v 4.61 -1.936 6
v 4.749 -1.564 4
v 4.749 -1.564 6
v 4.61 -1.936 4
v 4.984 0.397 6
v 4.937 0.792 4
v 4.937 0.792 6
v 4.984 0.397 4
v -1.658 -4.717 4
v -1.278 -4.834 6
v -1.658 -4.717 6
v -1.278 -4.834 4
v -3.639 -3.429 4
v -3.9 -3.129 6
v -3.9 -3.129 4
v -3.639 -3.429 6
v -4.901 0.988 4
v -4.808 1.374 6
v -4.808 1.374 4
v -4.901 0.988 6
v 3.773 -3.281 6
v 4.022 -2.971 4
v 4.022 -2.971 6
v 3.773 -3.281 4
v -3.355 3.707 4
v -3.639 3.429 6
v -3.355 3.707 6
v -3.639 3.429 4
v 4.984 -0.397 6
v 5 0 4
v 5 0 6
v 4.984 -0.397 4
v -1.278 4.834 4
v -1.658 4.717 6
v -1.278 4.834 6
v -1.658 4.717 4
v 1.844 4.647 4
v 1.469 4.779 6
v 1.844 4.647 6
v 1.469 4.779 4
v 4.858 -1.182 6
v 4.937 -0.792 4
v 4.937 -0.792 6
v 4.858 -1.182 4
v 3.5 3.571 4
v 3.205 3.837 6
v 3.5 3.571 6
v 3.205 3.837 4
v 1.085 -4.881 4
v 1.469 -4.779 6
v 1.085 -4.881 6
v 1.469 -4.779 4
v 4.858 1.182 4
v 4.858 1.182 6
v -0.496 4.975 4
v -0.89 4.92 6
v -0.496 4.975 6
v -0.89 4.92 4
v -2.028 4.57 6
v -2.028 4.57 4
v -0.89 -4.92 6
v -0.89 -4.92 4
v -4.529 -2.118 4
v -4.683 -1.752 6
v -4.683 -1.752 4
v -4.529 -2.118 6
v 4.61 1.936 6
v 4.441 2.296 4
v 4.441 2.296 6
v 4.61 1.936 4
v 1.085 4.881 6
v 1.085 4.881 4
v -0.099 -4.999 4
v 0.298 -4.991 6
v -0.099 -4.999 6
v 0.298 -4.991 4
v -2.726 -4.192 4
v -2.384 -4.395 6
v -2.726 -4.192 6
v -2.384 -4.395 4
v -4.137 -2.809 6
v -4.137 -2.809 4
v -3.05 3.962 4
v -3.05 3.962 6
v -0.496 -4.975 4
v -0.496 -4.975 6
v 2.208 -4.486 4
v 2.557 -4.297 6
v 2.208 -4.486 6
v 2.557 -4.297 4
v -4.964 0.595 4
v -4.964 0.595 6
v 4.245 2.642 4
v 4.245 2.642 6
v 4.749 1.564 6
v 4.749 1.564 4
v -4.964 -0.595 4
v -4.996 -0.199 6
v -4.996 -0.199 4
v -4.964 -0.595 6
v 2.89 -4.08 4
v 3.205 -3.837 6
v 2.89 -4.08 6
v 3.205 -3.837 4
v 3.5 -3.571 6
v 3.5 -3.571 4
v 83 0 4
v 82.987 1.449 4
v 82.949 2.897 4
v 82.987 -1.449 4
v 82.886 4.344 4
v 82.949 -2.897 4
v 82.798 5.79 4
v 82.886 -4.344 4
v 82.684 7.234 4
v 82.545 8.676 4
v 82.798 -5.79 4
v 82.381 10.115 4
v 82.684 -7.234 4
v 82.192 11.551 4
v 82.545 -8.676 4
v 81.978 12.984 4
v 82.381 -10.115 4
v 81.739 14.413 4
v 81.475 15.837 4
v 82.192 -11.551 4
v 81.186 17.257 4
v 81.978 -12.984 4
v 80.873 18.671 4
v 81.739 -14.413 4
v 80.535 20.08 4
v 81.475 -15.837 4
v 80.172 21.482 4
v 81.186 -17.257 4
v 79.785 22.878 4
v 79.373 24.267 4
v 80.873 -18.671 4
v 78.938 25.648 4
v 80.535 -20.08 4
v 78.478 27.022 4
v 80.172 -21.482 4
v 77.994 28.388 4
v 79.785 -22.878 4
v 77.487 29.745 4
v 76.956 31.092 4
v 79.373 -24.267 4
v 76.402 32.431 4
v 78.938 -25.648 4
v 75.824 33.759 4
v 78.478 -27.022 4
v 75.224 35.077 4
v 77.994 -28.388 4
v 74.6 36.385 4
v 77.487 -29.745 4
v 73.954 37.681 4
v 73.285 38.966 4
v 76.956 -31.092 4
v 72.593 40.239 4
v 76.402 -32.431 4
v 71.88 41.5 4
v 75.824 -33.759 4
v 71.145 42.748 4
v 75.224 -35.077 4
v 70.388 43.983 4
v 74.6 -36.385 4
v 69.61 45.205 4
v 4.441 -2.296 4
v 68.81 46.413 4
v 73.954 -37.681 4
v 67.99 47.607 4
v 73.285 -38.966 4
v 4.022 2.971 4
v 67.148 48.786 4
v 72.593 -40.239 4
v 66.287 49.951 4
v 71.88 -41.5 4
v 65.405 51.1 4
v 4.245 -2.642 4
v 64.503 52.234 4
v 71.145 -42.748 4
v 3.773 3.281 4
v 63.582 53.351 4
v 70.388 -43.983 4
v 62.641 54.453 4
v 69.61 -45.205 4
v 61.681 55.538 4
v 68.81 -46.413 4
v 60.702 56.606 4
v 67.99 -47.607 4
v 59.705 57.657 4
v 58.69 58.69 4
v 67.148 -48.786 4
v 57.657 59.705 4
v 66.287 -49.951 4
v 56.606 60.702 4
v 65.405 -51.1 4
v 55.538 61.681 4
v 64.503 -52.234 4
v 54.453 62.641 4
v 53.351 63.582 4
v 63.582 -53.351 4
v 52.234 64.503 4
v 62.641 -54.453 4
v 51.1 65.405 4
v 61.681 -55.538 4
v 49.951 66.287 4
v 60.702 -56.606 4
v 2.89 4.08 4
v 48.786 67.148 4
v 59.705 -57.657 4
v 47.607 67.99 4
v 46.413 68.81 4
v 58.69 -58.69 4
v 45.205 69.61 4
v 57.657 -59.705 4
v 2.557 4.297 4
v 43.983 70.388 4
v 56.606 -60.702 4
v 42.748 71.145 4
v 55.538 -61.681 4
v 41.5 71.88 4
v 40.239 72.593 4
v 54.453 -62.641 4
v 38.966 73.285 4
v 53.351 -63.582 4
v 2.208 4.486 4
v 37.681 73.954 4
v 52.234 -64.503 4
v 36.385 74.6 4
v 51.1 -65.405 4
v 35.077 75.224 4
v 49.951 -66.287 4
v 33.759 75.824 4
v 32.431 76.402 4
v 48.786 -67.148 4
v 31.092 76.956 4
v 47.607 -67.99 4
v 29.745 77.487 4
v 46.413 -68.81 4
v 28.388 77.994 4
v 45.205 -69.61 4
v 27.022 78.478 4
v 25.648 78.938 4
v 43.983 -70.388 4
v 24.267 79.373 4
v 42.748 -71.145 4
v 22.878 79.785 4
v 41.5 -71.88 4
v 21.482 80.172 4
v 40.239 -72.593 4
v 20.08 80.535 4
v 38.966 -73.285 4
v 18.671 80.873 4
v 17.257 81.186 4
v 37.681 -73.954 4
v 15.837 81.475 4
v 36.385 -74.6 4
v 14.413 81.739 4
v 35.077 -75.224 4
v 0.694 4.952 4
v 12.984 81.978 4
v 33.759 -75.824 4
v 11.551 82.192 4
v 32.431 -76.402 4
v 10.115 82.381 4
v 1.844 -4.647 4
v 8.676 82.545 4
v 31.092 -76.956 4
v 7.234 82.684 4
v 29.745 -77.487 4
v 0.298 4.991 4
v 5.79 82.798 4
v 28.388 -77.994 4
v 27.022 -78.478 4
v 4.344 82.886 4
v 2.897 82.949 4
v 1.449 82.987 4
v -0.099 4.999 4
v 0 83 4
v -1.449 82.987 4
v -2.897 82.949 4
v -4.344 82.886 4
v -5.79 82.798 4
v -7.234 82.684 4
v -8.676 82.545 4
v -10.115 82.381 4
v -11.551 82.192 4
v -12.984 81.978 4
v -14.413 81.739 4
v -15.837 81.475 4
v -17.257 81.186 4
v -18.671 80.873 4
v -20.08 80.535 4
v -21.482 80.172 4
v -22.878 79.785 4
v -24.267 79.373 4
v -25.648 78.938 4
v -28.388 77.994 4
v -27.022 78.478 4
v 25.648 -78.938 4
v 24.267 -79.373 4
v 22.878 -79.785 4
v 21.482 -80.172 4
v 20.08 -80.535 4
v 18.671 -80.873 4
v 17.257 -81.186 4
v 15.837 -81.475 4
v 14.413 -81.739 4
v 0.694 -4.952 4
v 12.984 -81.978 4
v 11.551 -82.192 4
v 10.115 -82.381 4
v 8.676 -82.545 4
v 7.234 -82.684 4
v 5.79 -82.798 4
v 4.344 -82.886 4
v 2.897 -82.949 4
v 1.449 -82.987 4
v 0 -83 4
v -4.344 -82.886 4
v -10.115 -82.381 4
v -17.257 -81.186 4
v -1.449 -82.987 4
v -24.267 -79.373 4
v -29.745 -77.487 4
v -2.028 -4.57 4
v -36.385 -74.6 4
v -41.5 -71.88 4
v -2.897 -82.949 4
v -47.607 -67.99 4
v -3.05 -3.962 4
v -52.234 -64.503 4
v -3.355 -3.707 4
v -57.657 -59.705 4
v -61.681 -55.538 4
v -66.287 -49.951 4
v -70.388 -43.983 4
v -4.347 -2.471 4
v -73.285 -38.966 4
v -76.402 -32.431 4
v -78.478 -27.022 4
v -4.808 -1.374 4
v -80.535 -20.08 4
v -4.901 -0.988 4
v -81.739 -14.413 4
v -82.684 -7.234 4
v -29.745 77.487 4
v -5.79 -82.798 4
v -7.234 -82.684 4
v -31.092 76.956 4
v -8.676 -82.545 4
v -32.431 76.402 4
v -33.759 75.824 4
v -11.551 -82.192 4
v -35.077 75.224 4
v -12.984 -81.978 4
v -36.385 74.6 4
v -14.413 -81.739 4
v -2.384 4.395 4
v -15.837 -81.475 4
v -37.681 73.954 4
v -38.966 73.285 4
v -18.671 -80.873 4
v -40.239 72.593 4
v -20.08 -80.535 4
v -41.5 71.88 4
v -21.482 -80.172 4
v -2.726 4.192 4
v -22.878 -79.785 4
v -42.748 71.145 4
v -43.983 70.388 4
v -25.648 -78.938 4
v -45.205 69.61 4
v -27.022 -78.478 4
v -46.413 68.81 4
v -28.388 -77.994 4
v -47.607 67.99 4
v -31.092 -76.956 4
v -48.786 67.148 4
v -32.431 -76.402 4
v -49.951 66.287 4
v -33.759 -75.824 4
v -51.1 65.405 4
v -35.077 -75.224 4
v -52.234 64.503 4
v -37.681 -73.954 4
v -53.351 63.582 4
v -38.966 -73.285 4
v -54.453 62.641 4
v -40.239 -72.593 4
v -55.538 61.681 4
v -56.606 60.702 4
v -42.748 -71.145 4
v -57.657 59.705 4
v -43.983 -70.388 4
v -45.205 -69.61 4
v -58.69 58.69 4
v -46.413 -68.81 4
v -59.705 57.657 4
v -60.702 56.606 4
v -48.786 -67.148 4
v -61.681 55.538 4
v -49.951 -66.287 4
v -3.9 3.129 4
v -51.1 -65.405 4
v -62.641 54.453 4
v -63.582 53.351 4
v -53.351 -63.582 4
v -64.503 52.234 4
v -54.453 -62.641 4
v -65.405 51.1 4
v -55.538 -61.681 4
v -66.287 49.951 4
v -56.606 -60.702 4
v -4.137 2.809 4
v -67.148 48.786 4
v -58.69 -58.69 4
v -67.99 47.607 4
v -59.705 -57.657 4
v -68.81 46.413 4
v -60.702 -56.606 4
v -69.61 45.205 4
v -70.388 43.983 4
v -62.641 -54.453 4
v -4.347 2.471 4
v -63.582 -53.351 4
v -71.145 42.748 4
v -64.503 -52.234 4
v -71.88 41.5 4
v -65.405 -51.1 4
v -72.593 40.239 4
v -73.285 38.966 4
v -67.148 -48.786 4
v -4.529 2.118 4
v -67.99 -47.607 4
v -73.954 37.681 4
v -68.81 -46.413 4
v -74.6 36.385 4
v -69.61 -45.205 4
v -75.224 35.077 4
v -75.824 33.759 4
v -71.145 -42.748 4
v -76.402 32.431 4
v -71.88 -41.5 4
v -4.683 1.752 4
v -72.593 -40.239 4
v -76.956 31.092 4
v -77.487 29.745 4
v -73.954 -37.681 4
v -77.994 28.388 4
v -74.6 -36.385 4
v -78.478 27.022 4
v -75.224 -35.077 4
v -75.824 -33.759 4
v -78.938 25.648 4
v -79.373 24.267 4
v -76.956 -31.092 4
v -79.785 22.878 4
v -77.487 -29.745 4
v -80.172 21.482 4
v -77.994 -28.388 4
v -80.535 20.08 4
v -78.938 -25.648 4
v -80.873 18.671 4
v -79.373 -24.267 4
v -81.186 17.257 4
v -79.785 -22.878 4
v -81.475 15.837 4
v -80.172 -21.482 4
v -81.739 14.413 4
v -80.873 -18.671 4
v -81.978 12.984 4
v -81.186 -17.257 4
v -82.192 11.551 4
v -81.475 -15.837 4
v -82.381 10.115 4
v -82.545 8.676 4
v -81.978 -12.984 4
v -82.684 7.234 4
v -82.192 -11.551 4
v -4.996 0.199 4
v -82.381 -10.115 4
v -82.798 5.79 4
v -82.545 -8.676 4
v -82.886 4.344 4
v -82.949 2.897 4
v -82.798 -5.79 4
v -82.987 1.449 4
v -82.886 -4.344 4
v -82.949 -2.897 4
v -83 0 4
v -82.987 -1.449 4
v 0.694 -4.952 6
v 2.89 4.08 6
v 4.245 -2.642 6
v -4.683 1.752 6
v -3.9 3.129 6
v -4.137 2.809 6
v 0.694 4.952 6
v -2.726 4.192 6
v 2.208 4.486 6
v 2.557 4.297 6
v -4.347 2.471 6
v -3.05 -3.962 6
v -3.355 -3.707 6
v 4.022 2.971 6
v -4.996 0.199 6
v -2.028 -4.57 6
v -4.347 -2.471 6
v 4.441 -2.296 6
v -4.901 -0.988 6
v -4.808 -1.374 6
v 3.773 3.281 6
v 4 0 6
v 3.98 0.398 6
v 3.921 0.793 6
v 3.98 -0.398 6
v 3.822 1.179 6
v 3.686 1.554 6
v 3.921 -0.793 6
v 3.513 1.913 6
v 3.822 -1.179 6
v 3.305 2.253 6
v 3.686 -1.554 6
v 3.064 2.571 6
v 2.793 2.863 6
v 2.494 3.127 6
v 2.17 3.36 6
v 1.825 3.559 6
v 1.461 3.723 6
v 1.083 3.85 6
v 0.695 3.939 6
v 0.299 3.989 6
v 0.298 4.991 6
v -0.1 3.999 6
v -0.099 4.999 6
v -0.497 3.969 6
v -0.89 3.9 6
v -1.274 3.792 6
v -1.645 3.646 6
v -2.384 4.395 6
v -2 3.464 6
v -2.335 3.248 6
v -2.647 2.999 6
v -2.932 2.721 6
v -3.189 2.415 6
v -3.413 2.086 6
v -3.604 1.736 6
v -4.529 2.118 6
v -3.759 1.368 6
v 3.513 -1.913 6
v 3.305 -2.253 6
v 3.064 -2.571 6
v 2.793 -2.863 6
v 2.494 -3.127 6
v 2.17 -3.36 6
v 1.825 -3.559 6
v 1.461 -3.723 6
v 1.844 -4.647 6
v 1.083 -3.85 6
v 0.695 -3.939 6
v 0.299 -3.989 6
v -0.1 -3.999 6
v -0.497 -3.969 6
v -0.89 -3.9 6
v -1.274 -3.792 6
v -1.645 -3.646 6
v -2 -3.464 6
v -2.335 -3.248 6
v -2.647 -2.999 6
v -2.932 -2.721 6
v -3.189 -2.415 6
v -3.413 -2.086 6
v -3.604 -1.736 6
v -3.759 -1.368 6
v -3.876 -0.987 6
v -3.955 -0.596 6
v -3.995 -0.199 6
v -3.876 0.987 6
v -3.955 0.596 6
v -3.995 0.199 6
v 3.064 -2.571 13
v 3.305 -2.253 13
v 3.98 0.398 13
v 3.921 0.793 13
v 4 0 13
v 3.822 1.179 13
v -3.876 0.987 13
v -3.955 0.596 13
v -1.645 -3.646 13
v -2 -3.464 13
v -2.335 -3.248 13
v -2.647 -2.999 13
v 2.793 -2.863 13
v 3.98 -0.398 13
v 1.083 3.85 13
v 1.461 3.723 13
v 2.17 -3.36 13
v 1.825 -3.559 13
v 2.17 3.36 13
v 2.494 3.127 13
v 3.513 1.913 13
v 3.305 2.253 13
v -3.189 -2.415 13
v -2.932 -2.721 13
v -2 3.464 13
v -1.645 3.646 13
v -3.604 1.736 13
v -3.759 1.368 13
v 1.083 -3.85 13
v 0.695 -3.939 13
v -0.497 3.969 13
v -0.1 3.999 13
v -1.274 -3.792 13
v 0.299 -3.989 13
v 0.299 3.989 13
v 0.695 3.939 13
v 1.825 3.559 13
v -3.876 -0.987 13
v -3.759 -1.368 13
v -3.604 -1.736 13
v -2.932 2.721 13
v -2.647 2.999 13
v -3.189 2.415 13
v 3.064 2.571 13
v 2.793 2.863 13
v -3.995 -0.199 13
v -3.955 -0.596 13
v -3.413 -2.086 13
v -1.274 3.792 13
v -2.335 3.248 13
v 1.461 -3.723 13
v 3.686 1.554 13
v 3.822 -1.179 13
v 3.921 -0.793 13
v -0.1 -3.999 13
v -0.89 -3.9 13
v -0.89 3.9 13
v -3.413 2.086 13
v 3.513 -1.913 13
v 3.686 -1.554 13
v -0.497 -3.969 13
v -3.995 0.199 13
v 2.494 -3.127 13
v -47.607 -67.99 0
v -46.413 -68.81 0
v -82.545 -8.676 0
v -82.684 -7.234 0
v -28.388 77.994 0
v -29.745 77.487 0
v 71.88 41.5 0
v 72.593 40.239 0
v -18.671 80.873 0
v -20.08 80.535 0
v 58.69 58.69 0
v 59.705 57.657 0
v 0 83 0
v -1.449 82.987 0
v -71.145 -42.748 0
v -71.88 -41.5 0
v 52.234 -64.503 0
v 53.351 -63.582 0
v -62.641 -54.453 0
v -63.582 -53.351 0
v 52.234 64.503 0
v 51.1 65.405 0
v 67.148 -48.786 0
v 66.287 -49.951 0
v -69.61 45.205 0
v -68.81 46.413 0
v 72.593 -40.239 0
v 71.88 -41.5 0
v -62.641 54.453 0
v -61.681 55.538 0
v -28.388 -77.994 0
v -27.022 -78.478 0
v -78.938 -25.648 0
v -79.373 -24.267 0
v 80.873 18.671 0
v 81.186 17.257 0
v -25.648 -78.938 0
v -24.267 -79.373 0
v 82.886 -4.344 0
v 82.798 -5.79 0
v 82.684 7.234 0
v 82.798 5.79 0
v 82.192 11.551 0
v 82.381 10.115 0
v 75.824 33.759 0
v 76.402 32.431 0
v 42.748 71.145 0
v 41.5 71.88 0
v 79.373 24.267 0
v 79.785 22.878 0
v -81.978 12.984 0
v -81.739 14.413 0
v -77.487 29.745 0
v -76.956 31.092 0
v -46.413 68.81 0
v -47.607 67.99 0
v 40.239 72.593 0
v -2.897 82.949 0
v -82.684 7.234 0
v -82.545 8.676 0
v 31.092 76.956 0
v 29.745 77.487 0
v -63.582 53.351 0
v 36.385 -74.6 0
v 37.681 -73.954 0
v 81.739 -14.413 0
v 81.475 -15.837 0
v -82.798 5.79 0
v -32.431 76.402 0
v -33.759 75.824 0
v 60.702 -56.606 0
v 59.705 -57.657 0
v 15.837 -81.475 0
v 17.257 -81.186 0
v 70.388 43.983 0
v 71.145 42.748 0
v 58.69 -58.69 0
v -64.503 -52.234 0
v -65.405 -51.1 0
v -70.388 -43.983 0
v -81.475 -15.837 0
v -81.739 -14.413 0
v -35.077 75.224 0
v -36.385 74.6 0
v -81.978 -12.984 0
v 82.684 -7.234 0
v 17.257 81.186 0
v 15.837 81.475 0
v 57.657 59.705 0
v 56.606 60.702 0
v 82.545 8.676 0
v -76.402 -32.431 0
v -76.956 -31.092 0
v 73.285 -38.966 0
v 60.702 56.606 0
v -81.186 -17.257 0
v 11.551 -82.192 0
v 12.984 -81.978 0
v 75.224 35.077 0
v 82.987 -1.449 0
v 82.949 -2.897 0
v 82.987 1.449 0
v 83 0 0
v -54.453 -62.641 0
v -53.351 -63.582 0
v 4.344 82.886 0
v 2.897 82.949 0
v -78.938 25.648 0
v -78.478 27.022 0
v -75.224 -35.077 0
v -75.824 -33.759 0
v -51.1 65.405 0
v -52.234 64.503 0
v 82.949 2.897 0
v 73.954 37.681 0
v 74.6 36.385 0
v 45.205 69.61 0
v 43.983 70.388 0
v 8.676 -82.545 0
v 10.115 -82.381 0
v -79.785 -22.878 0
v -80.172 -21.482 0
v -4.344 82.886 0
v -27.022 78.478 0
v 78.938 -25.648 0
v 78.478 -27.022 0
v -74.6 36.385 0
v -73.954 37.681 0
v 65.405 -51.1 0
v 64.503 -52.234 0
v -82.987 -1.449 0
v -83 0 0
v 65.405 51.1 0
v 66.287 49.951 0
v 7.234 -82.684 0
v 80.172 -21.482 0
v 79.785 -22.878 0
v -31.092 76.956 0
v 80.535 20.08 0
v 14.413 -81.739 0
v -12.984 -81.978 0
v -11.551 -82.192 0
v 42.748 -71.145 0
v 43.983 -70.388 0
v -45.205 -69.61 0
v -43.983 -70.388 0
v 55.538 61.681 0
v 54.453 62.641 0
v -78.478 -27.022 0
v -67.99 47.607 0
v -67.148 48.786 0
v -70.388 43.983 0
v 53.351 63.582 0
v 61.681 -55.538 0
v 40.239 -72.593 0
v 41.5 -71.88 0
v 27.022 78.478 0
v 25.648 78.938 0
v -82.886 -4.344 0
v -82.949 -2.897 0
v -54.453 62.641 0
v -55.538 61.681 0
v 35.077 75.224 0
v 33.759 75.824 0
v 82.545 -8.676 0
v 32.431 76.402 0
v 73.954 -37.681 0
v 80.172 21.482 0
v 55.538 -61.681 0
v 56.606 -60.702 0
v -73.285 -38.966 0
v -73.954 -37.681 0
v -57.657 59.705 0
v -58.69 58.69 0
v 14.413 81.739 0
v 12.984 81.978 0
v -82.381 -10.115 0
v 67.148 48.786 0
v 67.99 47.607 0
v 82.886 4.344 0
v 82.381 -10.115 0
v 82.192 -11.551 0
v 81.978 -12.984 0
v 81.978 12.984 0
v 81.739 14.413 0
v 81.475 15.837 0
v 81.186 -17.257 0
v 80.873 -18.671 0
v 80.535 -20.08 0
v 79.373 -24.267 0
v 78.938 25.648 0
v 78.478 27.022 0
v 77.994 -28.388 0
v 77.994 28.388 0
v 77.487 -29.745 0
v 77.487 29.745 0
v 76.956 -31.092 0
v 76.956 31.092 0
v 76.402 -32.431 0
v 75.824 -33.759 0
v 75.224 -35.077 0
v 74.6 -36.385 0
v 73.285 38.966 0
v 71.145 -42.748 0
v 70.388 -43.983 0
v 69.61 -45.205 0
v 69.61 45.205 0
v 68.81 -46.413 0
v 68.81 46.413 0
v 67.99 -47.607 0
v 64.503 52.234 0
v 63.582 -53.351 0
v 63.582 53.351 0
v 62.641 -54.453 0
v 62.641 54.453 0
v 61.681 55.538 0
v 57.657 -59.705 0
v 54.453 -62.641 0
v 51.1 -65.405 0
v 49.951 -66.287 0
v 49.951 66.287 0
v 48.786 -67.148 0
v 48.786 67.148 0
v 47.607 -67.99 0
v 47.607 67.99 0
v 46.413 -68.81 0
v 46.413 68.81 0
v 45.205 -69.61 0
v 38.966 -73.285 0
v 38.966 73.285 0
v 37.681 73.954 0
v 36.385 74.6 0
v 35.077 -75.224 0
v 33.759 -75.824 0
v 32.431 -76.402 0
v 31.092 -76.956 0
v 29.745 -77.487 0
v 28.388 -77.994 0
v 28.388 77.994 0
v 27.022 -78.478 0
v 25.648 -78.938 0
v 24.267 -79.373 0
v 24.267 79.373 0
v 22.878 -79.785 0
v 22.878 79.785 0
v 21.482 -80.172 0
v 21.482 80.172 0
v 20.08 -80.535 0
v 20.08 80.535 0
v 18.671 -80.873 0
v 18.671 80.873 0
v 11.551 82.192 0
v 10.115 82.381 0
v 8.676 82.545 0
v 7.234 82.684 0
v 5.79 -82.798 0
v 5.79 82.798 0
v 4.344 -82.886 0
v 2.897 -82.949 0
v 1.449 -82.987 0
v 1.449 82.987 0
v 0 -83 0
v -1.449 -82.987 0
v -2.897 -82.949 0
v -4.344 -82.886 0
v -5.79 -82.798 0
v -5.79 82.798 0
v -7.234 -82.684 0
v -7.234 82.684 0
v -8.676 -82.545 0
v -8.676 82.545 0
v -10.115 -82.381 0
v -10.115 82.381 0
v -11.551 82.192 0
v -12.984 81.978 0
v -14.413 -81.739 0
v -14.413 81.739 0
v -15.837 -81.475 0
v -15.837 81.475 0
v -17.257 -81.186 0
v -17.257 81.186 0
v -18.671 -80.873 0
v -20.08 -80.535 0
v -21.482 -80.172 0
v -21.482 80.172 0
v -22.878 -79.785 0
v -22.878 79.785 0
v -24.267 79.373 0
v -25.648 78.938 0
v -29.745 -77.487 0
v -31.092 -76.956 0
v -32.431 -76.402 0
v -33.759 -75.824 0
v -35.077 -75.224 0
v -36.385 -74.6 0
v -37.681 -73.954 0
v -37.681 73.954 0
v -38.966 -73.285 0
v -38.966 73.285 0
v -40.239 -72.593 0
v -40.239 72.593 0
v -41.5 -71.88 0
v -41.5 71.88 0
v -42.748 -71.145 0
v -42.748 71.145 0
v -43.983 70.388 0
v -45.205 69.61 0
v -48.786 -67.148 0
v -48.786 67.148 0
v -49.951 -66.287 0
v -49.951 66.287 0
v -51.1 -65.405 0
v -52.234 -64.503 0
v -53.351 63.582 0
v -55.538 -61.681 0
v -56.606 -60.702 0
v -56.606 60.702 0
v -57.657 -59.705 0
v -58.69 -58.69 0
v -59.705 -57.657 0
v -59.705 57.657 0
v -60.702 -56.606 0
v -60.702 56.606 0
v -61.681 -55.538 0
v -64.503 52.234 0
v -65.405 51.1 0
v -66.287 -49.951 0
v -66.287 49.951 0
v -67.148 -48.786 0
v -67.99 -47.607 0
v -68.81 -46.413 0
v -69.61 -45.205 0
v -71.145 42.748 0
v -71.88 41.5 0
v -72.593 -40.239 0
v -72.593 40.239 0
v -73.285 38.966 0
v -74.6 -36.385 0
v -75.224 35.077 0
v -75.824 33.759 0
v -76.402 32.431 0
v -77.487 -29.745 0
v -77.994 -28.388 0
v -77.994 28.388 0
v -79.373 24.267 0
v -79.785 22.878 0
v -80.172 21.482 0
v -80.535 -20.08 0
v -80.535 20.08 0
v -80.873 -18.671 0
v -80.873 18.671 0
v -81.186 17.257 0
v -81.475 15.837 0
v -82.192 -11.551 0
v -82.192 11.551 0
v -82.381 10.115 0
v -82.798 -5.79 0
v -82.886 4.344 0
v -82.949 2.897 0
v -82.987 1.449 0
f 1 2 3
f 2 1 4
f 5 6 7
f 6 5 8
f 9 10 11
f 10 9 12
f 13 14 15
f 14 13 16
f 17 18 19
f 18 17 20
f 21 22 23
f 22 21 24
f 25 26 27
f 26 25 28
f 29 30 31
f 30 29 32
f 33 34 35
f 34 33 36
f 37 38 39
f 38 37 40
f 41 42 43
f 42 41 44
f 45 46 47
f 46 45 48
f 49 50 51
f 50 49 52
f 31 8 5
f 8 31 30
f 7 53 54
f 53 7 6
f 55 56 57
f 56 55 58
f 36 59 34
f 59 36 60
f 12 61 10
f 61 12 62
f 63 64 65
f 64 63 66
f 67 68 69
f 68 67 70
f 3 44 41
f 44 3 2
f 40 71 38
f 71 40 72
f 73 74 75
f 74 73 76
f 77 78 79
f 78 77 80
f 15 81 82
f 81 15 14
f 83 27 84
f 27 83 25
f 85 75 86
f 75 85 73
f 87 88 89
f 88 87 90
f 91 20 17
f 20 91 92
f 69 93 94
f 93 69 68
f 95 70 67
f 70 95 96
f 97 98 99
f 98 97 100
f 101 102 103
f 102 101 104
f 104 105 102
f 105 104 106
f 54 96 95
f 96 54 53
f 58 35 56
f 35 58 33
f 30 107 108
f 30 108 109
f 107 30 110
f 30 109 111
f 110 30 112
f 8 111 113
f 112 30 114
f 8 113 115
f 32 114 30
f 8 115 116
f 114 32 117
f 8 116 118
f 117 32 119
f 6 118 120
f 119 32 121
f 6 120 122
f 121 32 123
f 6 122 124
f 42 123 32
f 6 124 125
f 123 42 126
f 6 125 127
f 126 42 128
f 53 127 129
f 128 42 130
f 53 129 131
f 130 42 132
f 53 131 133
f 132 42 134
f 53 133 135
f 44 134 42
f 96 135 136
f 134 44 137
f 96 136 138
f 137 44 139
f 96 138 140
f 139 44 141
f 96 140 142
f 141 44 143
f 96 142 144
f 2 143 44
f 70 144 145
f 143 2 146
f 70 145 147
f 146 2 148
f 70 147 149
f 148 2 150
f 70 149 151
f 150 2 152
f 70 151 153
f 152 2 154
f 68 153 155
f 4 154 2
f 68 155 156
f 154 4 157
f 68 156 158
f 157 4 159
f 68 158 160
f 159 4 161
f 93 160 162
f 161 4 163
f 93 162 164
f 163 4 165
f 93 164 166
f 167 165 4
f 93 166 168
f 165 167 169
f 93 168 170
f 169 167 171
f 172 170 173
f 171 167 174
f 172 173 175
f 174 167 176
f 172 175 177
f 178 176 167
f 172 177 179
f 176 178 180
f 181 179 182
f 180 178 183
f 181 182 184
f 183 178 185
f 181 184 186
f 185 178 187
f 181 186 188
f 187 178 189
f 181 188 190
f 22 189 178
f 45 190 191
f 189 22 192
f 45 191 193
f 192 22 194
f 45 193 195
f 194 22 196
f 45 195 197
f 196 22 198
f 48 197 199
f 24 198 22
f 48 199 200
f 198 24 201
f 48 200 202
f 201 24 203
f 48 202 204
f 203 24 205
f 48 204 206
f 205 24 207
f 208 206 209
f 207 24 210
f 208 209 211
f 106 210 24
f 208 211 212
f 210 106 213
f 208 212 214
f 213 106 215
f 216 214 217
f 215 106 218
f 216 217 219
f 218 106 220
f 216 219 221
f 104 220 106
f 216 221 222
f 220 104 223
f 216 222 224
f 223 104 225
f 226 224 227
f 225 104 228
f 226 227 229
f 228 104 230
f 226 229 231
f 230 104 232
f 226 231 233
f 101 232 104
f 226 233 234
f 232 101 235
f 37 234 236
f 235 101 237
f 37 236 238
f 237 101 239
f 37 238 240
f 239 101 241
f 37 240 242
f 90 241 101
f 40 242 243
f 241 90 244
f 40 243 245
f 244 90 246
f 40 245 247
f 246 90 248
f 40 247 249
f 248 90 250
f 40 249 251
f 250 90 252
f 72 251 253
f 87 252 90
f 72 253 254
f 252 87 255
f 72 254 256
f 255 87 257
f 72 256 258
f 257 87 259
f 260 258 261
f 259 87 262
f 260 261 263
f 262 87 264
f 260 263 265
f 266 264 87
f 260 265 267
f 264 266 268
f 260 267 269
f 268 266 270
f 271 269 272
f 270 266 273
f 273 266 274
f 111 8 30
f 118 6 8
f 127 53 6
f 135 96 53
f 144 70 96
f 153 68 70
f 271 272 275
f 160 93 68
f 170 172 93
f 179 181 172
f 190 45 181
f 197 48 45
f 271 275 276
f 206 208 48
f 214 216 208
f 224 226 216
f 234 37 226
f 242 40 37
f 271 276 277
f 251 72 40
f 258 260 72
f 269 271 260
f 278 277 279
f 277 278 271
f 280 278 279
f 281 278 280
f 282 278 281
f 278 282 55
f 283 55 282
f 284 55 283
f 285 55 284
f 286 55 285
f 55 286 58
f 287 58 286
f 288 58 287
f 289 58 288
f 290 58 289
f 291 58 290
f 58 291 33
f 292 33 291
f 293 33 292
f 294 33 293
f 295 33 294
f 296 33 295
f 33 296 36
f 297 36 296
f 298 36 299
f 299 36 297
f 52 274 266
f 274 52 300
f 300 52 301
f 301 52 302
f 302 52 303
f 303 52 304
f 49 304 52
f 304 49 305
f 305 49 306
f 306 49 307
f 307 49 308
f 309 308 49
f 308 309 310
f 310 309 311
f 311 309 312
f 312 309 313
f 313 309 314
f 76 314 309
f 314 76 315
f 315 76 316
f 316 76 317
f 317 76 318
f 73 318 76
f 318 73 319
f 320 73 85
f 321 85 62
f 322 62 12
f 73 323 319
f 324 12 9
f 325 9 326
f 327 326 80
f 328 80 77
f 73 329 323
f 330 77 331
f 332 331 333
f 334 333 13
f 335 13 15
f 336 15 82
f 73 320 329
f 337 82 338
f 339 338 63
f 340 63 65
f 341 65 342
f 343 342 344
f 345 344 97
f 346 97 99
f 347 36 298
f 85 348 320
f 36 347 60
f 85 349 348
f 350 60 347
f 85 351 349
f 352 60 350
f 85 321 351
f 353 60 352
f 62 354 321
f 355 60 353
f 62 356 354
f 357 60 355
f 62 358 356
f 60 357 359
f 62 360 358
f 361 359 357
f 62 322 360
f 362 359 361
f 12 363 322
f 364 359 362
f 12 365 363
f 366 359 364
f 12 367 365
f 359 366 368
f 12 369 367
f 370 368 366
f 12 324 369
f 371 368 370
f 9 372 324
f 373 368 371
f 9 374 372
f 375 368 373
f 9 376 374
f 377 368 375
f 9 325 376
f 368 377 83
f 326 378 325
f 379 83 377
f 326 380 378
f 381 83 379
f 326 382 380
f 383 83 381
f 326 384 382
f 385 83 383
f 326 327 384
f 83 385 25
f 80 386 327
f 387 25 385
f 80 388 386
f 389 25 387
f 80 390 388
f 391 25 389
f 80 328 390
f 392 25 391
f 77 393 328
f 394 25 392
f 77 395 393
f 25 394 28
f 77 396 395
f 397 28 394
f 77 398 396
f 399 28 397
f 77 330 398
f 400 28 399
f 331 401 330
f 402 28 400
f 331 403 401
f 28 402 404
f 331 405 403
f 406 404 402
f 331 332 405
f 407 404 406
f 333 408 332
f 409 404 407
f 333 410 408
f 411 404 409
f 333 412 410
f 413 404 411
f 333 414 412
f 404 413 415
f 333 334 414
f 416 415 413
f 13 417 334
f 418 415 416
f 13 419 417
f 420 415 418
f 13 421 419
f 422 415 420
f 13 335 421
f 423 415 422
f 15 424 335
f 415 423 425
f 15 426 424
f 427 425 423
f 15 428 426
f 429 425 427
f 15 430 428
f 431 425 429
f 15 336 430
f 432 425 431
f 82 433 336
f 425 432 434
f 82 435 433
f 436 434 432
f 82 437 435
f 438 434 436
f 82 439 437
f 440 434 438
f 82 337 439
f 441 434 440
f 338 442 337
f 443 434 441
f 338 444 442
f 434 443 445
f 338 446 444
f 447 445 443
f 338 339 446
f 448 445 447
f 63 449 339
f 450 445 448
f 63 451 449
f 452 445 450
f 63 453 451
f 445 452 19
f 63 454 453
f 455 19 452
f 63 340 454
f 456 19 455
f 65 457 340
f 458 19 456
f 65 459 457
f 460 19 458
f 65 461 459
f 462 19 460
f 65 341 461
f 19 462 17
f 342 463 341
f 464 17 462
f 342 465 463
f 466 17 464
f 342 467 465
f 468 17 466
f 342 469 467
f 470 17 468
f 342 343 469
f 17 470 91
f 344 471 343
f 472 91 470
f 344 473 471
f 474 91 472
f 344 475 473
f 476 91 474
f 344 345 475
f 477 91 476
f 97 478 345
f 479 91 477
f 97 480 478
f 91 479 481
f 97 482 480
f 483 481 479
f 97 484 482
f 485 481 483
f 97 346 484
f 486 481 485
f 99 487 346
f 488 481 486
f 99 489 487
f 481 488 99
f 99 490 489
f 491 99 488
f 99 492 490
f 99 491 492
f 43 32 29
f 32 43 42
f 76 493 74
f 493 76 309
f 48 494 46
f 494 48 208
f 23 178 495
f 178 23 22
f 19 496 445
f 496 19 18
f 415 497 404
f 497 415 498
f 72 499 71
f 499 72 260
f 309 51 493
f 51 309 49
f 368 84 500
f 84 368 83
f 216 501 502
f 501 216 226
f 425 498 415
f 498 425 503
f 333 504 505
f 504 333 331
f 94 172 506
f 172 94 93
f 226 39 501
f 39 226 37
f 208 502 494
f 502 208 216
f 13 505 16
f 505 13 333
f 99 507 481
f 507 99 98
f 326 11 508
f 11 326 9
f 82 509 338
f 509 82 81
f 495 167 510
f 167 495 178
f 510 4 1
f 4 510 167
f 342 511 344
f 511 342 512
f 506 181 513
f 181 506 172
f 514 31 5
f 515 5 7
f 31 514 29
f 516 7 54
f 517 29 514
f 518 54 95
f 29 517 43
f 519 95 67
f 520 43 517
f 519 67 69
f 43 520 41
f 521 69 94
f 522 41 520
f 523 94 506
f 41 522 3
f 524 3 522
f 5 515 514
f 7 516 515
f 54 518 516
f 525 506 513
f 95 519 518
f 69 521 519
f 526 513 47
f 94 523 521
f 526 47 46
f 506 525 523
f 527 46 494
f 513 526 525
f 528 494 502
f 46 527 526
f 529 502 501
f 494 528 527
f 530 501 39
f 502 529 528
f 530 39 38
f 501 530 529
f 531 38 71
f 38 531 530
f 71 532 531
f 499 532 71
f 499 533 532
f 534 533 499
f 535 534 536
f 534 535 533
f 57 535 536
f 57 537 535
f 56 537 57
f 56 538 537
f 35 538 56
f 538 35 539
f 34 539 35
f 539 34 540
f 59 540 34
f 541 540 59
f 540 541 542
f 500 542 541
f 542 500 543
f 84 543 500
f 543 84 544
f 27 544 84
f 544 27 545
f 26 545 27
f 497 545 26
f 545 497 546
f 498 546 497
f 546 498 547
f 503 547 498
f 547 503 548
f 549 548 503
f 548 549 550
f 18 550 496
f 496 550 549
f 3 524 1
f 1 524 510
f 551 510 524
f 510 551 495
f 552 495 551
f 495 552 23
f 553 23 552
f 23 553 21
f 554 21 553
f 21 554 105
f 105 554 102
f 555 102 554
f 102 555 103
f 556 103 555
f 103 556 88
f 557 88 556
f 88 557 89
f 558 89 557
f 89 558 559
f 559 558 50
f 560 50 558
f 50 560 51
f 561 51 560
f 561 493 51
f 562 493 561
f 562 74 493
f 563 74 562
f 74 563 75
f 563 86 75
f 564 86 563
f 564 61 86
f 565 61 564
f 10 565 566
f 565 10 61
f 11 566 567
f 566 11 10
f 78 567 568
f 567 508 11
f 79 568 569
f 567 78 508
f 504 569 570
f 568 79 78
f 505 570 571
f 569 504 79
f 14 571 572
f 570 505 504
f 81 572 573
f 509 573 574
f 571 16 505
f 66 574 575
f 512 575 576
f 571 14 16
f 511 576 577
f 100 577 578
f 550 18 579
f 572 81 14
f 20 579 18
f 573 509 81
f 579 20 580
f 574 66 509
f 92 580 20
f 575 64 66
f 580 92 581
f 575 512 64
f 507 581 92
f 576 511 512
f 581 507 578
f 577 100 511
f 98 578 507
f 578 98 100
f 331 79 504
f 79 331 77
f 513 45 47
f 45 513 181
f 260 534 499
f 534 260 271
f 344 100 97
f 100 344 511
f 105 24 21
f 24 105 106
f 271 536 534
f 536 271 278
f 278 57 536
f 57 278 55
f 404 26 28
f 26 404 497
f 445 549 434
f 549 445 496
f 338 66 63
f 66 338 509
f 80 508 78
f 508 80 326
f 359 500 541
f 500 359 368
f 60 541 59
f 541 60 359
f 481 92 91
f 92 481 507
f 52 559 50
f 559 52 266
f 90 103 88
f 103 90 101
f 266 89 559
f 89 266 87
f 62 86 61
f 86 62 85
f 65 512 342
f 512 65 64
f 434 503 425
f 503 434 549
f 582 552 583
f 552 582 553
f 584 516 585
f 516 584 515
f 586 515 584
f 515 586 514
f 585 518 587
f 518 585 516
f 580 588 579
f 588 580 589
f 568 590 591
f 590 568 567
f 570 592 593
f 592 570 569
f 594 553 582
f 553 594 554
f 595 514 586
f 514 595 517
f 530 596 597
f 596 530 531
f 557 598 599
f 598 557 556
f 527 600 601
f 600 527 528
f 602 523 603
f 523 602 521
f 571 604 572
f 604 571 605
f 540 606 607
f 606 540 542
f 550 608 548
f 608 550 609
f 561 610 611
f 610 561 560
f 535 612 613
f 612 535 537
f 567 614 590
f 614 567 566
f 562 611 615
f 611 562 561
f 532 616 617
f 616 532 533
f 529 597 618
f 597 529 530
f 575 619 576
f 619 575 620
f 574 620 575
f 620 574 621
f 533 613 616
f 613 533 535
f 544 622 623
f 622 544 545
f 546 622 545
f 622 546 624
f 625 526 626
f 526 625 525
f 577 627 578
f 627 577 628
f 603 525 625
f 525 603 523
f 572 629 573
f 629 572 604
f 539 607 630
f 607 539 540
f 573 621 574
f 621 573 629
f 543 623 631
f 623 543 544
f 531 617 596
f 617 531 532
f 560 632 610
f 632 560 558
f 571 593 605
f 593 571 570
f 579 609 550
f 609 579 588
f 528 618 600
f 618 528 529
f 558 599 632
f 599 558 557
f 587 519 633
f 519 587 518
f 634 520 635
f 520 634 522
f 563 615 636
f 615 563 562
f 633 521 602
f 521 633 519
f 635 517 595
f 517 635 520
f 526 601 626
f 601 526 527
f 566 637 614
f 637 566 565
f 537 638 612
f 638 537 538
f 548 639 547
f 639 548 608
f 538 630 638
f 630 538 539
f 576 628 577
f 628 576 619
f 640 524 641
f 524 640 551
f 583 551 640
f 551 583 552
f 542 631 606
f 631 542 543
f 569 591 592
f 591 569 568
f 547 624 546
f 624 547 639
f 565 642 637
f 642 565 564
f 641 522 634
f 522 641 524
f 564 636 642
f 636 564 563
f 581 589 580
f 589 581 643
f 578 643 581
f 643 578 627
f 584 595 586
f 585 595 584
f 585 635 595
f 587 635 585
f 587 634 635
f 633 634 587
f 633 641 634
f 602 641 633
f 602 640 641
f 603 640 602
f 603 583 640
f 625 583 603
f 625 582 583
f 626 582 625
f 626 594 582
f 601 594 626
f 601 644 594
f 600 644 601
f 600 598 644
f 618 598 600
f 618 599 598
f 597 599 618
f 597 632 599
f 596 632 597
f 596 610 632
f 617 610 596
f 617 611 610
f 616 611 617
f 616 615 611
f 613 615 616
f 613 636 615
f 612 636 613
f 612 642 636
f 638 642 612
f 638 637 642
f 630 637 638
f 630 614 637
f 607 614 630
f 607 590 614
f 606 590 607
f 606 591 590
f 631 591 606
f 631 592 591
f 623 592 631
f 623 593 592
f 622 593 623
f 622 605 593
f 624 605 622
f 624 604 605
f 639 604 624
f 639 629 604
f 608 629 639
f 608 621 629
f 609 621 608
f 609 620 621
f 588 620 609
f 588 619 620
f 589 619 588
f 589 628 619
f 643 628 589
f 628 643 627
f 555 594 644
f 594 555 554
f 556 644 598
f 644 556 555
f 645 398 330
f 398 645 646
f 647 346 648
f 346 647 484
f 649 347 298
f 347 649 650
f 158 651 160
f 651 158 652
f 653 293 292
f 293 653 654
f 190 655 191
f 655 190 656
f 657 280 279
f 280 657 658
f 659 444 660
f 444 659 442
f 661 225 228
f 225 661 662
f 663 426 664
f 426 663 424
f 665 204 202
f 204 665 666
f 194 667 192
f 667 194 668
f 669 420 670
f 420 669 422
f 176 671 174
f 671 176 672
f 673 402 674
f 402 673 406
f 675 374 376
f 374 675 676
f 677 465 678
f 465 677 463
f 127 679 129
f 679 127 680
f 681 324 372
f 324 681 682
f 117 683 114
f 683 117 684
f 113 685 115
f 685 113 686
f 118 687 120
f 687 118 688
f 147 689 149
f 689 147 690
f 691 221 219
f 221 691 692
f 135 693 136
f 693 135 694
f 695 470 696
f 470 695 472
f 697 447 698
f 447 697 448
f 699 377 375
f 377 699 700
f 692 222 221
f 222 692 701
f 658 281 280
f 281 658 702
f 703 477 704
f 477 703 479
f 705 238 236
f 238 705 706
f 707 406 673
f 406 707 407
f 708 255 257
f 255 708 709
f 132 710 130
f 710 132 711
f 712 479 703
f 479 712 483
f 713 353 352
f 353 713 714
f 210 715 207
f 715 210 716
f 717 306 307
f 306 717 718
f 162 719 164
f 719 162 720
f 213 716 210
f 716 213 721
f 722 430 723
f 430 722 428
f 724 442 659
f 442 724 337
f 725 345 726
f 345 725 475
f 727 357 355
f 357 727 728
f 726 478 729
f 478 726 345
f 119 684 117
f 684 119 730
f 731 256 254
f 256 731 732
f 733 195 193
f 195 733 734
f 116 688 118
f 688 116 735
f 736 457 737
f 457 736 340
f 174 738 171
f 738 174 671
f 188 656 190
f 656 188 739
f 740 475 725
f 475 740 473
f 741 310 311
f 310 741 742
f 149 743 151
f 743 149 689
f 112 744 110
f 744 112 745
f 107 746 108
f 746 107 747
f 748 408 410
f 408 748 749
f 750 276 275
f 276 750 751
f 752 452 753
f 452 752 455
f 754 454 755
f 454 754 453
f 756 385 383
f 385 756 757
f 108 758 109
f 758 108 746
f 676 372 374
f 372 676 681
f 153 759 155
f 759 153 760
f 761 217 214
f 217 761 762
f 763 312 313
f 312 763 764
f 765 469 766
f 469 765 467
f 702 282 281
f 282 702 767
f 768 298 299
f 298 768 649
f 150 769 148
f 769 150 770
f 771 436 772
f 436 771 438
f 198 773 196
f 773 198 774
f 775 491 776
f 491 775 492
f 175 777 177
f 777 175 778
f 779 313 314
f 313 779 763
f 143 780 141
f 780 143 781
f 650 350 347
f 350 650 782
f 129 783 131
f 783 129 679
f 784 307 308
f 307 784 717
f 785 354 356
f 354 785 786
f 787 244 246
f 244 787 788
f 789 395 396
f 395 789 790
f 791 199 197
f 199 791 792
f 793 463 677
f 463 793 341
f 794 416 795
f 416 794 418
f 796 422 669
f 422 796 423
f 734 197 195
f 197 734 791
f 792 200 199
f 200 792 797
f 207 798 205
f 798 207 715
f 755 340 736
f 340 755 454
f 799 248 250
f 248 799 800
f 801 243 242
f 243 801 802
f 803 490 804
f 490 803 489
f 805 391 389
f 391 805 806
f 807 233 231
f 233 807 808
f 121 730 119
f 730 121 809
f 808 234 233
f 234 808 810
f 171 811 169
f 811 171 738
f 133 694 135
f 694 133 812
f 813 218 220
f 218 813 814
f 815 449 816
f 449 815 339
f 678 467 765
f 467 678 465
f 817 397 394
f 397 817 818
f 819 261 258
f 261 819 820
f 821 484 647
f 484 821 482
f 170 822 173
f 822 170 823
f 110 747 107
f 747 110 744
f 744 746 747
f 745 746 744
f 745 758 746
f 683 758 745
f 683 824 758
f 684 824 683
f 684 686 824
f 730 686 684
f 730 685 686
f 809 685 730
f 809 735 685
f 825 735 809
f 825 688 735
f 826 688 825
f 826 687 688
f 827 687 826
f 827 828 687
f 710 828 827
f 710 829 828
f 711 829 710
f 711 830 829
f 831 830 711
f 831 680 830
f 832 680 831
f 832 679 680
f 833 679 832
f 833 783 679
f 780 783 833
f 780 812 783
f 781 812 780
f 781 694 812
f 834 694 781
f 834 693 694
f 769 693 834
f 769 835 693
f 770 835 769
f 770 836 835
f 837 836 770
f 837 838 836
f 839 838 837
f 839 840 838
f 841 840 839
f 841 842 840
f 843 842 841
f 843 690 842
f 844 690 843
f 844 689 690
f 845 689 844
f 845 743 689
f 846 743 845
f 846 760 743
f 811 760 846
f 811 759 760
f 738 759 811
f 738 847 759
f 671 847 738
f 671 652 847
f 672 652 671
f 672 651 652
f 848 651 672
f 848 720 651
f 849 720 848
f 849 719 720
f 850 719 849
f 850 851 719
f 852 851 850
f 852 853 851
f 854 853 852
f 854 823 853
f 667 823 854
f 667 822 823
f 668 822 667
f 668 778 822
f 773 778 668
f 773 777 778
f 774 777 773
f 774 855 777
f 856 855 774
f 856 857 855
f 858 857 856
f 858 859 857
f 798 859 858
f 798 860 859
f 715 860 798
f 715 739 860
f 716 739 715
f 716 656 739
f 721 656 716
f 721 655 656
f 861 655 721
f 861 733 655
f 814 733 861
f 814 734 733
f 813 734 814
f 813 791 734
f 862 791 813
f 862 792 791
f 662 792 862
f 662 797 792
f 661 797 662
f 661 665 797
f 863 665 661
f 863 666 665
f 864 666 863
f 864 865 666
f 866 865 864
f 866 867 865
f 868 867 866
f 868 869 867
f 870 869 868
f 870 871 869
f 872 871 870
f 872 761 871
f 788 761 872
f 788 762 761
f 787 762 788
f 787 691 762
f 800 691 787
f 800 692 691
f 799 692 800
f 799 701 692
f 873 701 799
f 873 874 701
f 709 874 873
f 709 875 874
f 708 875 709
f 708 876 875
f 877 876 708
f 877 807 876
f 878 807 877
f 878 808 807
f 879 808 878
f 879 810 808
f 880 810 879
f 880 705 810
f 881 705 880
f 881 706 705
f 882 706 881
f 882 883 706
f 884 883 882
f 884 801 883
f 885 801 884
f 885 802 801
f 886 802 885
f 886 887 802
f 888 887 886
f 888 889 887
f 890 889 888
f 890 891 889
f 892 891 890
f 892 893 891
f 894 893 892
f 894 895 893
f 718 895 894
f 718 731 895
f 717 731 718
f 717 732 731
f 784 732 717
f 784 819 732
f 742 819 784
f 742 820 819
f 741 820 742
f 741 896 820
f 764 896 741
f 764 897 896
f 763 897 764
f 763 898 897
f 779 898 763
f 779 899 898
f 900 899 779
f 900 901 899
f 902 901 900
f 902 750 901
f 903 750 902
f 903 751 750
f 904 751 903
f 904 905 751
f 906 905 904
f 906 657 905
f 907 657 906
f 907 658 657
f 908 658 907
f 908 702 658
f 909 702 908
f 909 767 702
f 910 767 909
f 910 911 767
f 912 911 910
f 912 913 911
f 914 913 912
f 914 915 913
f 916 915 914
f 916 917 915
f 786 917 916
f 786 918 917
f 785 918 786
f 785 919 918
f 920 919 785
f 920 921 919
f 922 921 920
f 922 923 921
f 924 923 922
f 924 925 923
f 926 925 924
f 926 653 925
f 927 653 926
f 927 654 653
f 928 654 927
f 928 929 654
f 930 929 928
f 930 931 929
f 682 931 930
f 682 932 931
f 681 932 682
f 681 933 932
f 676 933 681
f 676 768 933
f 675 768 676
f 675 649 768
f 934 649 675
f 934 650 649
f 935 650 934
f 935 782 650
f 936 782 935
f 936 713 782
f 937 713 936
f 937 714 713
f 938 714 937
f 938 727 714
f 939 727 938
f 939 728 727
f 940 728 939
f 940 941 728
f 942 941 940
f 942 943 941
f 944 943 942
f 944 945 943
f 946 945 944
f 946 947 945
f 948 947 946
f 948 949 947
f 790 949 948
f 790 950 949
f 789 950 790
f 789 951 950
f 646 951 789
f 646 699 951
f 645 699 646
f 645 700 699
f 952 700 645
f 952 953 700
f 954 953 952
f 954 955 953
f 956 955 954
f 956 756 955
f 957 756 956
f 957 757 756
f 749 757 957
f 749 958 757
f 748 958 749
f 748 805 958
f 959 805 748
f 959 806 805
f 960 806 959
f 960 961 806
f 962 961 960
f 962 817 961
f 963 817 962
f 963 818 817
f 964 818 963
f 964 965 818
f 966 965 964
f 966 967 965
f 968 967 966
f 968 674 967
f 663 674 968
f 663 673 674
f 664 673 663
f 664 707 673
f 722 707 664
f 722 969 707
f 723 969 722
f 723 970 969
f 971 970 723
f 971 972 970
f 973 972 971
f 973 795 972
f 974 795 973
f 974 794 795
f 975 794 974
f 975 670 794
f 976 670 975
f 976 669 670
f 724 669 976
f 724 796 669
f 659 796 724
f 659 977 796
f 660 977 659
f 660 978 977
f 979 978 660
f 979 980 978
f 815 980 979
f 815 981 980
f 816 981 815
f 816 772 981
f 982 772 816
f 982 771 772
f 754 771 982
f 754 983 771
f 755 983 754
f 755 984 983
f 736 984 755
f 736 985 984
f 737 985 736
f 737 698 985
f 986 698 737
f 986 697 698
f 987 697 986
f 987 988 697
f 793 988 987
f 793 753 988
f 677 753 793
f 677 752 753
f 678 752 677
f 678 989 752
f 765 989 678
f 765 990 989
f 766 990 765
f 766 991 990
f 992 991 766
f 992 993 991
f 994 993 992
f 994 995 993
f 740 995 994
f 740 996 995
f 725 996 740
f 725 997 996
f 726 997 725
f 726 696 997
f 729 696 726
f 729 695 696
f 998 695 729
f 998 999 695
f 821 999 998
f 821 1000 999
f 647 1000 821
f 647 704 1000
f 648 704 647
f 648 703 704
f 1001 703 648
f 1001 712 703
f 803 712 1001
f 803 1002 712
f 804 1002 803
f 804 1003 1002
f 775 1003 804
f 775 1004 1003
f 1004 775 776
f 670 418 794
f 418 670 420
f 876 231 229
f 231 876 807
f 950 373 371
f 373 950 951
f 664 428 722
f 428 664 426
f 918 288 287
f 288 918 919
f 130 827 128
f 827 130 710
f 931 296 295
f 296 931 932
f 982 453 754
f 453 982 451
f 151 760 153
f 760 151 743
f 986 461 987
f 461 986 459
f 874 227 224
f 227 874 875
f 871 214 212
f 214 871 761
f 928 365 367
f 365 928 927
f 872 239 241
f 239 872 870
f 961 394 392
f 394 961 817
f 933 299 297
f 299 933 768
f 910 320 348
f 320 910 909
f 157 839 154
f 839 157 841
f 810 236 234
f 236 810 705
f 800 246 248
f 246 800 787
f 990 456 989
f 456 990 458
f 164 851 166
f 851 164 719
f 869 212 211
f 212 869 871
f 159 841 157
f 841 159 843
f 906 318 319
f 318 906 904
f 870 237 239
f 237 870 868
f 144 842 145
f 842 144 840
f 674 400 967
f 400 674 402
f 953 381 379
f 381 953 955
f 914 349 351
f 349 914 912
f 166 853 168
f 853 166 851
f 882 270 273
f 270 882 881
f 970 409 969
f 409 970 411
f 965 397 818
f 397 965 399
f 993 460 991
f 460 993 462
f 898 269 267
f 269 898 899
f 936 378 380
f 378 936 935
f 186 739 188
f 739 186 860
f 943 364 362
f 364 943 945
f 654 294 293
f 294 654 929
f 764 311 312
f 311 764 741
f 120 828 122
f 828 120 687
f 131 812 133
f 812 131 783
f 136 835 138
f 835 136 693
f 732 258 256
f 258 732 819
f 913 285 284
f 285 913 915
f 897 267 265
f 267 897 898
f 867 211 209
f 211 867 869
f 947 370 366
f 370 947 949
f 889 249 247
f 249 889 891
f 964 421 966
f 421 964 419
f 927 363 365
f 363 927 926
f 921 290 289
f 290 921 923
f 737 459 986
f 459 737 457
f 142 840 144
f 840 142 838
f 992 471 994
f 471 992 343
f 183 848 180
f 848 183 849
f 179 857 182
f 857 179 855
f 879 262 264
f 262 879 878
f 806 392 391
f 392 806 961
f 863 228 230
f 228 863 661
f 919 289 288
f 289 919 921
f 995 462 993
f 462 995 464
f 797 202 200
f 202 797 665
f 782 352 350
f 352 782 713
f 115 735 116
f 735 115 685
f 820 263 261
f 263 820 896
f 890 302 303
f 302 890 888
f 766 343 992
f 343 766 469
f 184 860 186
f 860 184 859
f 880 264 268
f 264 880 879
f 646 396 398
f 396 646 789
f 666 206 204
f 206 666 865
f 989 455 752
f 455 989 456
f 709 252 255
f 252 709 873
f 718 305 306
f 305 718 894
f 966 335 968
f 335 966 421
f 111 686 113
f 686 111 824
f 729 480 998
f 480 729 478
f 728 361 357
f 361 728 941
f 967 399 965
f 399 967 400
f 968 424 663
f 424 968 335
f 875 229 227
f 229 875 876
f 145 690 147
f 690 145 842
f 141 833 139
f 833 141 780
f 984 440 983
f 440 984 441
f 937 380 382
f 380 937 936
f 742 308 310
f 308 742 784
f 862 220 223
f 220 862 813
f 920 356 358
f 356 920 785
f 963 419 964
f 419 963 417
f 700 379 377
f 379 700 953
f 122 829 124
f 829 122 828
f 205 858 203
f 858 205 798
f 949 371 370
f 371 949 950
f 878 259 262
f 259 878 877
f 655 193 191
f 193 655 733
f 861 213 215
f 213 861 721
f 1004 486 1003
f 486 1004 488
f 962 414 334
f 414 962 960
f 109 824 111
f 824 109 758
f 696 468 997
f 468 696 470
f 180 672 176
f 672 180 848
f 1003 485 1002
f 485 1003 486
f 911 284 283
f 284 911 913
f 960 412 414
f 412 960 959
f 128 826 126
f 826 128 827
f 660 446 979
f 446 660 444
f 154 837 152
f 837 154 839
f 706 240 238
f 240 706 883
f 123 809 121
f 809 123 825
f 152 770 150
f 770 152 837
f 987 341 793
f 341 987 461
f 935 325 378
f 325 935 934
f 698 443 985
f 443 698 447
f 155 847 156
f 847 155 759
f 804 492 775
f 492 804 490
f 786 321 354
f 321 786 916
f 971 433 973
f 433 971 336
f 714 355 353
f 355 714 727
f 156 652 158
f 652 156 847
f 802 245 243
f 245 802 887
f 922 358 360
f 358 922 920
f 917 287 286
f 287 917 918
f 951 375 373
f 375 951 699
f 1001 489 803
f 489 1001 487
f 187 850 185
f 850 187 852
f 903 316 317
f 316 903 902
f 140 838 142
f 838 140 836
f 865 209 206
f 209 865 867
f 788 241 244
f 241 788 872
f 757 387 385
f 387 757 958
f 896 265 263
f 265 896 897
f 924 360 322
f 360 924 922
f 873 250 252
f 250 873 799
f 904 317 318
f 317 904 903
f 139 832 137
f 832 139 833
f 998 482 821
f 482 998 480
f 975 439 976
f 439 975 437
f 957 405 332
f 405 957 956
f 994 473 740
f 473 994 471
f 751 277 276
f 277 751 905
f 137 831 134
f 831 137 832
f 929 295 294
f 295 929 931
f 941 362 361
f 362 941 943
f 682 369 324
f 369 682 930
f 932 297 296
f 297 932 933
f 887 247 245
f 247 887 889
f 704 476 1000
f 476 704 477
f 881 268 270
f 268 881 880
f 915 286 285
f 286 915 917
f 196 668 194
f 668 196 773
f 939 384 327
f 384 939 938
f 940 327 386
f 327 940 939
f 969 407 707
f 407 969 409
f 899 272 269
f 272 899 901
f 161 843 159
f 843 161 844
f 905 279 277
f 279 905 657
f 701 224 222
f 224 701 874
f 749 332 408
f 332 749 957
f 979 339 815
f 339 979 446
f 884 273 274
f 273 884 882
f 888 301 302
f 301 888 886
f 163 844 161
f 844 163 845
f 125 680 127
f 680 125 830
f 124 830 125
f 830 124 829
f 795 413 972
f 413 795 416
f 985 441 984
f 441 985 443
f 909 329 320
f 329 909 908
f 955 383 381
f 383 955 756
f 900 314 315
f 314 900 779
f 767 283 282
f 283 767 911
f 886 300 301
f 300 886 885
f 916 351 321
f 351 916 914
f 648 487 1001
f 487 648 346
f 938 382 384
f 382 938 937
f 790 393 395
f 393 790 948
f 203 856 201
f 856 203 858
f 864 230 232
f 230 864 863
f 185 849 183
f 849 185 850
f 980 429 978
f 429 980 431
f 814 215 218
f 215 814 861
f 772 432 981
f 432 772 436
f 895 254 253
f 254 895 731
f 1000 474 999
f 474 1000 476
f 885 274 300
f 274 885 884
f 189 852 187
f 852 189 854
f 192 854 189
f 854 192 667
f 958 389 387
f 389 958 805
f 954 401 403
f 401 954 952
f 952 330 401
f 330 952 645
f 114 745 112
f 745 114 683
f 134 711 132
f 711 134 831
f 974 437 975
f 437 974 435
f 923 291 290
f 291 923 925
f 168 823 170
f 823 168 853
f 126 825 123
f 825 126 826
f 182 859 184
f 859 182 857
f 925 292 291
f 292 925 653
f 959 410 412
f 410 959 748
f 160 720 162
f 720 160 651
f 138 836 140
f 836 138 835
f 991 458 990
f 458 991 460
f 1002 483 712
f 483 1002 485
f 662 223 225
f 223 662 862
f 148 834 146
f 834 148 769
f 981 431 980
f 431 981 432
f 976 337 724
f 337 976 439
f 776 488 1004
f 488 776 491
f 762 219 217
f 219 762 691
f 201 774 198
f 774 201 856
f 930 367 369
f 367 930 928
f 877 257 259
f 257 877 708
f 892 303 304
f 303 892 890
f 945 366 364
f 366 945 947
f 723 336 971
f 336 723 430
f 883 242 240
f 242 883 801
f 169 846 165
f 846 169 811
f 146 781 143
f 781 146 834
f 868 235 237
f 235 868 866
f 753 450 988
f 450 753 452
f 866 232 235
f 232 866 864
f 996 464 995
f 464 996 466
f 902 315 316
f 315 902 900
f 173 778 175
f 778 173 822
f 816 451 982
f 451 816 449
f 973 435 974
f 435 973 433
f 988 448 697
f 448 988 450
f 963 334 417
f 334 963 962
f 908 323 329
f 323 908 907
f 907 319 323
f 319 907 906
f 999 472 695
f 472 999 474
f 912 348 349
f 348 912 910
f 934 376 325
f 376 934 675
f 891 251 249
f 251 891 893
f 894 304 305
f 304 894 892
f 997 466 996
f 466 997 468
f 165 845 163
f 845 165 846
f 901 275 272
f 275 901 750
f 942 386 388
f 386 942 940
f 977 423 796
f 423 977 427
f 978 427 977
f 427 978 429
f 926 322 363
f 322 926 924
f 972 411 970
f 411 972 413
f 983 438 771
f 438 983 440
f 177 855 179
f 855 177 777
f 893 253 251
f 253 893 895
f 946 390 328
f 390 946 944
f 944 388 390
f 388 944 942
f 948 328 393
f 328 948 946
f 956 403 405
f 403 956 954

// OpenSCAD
ball_bearing_inner_dimension = 8;
ball_bearing_height = 7;
ball_bearing_support_width = 10;
ball_bearing_support_height = 2;
platform_support_diameter = 83 * 2;
platform_height = 4;
$fa = 1; // idk waht these are lol
$fs = 0.4;
union() {
cylinder(d=platform_support_diameter,h=platform_height);
translate([0,0,platform_height]) {
    cylinder(d=ball_bearing_support_width, h=ball_bearing_support_height);
    translate([0,0,ball_bearing_support_height]) {
        cylinder(d=ball_bearing_inner_dimension,h=ball_bearing_height);
    }
}
}
